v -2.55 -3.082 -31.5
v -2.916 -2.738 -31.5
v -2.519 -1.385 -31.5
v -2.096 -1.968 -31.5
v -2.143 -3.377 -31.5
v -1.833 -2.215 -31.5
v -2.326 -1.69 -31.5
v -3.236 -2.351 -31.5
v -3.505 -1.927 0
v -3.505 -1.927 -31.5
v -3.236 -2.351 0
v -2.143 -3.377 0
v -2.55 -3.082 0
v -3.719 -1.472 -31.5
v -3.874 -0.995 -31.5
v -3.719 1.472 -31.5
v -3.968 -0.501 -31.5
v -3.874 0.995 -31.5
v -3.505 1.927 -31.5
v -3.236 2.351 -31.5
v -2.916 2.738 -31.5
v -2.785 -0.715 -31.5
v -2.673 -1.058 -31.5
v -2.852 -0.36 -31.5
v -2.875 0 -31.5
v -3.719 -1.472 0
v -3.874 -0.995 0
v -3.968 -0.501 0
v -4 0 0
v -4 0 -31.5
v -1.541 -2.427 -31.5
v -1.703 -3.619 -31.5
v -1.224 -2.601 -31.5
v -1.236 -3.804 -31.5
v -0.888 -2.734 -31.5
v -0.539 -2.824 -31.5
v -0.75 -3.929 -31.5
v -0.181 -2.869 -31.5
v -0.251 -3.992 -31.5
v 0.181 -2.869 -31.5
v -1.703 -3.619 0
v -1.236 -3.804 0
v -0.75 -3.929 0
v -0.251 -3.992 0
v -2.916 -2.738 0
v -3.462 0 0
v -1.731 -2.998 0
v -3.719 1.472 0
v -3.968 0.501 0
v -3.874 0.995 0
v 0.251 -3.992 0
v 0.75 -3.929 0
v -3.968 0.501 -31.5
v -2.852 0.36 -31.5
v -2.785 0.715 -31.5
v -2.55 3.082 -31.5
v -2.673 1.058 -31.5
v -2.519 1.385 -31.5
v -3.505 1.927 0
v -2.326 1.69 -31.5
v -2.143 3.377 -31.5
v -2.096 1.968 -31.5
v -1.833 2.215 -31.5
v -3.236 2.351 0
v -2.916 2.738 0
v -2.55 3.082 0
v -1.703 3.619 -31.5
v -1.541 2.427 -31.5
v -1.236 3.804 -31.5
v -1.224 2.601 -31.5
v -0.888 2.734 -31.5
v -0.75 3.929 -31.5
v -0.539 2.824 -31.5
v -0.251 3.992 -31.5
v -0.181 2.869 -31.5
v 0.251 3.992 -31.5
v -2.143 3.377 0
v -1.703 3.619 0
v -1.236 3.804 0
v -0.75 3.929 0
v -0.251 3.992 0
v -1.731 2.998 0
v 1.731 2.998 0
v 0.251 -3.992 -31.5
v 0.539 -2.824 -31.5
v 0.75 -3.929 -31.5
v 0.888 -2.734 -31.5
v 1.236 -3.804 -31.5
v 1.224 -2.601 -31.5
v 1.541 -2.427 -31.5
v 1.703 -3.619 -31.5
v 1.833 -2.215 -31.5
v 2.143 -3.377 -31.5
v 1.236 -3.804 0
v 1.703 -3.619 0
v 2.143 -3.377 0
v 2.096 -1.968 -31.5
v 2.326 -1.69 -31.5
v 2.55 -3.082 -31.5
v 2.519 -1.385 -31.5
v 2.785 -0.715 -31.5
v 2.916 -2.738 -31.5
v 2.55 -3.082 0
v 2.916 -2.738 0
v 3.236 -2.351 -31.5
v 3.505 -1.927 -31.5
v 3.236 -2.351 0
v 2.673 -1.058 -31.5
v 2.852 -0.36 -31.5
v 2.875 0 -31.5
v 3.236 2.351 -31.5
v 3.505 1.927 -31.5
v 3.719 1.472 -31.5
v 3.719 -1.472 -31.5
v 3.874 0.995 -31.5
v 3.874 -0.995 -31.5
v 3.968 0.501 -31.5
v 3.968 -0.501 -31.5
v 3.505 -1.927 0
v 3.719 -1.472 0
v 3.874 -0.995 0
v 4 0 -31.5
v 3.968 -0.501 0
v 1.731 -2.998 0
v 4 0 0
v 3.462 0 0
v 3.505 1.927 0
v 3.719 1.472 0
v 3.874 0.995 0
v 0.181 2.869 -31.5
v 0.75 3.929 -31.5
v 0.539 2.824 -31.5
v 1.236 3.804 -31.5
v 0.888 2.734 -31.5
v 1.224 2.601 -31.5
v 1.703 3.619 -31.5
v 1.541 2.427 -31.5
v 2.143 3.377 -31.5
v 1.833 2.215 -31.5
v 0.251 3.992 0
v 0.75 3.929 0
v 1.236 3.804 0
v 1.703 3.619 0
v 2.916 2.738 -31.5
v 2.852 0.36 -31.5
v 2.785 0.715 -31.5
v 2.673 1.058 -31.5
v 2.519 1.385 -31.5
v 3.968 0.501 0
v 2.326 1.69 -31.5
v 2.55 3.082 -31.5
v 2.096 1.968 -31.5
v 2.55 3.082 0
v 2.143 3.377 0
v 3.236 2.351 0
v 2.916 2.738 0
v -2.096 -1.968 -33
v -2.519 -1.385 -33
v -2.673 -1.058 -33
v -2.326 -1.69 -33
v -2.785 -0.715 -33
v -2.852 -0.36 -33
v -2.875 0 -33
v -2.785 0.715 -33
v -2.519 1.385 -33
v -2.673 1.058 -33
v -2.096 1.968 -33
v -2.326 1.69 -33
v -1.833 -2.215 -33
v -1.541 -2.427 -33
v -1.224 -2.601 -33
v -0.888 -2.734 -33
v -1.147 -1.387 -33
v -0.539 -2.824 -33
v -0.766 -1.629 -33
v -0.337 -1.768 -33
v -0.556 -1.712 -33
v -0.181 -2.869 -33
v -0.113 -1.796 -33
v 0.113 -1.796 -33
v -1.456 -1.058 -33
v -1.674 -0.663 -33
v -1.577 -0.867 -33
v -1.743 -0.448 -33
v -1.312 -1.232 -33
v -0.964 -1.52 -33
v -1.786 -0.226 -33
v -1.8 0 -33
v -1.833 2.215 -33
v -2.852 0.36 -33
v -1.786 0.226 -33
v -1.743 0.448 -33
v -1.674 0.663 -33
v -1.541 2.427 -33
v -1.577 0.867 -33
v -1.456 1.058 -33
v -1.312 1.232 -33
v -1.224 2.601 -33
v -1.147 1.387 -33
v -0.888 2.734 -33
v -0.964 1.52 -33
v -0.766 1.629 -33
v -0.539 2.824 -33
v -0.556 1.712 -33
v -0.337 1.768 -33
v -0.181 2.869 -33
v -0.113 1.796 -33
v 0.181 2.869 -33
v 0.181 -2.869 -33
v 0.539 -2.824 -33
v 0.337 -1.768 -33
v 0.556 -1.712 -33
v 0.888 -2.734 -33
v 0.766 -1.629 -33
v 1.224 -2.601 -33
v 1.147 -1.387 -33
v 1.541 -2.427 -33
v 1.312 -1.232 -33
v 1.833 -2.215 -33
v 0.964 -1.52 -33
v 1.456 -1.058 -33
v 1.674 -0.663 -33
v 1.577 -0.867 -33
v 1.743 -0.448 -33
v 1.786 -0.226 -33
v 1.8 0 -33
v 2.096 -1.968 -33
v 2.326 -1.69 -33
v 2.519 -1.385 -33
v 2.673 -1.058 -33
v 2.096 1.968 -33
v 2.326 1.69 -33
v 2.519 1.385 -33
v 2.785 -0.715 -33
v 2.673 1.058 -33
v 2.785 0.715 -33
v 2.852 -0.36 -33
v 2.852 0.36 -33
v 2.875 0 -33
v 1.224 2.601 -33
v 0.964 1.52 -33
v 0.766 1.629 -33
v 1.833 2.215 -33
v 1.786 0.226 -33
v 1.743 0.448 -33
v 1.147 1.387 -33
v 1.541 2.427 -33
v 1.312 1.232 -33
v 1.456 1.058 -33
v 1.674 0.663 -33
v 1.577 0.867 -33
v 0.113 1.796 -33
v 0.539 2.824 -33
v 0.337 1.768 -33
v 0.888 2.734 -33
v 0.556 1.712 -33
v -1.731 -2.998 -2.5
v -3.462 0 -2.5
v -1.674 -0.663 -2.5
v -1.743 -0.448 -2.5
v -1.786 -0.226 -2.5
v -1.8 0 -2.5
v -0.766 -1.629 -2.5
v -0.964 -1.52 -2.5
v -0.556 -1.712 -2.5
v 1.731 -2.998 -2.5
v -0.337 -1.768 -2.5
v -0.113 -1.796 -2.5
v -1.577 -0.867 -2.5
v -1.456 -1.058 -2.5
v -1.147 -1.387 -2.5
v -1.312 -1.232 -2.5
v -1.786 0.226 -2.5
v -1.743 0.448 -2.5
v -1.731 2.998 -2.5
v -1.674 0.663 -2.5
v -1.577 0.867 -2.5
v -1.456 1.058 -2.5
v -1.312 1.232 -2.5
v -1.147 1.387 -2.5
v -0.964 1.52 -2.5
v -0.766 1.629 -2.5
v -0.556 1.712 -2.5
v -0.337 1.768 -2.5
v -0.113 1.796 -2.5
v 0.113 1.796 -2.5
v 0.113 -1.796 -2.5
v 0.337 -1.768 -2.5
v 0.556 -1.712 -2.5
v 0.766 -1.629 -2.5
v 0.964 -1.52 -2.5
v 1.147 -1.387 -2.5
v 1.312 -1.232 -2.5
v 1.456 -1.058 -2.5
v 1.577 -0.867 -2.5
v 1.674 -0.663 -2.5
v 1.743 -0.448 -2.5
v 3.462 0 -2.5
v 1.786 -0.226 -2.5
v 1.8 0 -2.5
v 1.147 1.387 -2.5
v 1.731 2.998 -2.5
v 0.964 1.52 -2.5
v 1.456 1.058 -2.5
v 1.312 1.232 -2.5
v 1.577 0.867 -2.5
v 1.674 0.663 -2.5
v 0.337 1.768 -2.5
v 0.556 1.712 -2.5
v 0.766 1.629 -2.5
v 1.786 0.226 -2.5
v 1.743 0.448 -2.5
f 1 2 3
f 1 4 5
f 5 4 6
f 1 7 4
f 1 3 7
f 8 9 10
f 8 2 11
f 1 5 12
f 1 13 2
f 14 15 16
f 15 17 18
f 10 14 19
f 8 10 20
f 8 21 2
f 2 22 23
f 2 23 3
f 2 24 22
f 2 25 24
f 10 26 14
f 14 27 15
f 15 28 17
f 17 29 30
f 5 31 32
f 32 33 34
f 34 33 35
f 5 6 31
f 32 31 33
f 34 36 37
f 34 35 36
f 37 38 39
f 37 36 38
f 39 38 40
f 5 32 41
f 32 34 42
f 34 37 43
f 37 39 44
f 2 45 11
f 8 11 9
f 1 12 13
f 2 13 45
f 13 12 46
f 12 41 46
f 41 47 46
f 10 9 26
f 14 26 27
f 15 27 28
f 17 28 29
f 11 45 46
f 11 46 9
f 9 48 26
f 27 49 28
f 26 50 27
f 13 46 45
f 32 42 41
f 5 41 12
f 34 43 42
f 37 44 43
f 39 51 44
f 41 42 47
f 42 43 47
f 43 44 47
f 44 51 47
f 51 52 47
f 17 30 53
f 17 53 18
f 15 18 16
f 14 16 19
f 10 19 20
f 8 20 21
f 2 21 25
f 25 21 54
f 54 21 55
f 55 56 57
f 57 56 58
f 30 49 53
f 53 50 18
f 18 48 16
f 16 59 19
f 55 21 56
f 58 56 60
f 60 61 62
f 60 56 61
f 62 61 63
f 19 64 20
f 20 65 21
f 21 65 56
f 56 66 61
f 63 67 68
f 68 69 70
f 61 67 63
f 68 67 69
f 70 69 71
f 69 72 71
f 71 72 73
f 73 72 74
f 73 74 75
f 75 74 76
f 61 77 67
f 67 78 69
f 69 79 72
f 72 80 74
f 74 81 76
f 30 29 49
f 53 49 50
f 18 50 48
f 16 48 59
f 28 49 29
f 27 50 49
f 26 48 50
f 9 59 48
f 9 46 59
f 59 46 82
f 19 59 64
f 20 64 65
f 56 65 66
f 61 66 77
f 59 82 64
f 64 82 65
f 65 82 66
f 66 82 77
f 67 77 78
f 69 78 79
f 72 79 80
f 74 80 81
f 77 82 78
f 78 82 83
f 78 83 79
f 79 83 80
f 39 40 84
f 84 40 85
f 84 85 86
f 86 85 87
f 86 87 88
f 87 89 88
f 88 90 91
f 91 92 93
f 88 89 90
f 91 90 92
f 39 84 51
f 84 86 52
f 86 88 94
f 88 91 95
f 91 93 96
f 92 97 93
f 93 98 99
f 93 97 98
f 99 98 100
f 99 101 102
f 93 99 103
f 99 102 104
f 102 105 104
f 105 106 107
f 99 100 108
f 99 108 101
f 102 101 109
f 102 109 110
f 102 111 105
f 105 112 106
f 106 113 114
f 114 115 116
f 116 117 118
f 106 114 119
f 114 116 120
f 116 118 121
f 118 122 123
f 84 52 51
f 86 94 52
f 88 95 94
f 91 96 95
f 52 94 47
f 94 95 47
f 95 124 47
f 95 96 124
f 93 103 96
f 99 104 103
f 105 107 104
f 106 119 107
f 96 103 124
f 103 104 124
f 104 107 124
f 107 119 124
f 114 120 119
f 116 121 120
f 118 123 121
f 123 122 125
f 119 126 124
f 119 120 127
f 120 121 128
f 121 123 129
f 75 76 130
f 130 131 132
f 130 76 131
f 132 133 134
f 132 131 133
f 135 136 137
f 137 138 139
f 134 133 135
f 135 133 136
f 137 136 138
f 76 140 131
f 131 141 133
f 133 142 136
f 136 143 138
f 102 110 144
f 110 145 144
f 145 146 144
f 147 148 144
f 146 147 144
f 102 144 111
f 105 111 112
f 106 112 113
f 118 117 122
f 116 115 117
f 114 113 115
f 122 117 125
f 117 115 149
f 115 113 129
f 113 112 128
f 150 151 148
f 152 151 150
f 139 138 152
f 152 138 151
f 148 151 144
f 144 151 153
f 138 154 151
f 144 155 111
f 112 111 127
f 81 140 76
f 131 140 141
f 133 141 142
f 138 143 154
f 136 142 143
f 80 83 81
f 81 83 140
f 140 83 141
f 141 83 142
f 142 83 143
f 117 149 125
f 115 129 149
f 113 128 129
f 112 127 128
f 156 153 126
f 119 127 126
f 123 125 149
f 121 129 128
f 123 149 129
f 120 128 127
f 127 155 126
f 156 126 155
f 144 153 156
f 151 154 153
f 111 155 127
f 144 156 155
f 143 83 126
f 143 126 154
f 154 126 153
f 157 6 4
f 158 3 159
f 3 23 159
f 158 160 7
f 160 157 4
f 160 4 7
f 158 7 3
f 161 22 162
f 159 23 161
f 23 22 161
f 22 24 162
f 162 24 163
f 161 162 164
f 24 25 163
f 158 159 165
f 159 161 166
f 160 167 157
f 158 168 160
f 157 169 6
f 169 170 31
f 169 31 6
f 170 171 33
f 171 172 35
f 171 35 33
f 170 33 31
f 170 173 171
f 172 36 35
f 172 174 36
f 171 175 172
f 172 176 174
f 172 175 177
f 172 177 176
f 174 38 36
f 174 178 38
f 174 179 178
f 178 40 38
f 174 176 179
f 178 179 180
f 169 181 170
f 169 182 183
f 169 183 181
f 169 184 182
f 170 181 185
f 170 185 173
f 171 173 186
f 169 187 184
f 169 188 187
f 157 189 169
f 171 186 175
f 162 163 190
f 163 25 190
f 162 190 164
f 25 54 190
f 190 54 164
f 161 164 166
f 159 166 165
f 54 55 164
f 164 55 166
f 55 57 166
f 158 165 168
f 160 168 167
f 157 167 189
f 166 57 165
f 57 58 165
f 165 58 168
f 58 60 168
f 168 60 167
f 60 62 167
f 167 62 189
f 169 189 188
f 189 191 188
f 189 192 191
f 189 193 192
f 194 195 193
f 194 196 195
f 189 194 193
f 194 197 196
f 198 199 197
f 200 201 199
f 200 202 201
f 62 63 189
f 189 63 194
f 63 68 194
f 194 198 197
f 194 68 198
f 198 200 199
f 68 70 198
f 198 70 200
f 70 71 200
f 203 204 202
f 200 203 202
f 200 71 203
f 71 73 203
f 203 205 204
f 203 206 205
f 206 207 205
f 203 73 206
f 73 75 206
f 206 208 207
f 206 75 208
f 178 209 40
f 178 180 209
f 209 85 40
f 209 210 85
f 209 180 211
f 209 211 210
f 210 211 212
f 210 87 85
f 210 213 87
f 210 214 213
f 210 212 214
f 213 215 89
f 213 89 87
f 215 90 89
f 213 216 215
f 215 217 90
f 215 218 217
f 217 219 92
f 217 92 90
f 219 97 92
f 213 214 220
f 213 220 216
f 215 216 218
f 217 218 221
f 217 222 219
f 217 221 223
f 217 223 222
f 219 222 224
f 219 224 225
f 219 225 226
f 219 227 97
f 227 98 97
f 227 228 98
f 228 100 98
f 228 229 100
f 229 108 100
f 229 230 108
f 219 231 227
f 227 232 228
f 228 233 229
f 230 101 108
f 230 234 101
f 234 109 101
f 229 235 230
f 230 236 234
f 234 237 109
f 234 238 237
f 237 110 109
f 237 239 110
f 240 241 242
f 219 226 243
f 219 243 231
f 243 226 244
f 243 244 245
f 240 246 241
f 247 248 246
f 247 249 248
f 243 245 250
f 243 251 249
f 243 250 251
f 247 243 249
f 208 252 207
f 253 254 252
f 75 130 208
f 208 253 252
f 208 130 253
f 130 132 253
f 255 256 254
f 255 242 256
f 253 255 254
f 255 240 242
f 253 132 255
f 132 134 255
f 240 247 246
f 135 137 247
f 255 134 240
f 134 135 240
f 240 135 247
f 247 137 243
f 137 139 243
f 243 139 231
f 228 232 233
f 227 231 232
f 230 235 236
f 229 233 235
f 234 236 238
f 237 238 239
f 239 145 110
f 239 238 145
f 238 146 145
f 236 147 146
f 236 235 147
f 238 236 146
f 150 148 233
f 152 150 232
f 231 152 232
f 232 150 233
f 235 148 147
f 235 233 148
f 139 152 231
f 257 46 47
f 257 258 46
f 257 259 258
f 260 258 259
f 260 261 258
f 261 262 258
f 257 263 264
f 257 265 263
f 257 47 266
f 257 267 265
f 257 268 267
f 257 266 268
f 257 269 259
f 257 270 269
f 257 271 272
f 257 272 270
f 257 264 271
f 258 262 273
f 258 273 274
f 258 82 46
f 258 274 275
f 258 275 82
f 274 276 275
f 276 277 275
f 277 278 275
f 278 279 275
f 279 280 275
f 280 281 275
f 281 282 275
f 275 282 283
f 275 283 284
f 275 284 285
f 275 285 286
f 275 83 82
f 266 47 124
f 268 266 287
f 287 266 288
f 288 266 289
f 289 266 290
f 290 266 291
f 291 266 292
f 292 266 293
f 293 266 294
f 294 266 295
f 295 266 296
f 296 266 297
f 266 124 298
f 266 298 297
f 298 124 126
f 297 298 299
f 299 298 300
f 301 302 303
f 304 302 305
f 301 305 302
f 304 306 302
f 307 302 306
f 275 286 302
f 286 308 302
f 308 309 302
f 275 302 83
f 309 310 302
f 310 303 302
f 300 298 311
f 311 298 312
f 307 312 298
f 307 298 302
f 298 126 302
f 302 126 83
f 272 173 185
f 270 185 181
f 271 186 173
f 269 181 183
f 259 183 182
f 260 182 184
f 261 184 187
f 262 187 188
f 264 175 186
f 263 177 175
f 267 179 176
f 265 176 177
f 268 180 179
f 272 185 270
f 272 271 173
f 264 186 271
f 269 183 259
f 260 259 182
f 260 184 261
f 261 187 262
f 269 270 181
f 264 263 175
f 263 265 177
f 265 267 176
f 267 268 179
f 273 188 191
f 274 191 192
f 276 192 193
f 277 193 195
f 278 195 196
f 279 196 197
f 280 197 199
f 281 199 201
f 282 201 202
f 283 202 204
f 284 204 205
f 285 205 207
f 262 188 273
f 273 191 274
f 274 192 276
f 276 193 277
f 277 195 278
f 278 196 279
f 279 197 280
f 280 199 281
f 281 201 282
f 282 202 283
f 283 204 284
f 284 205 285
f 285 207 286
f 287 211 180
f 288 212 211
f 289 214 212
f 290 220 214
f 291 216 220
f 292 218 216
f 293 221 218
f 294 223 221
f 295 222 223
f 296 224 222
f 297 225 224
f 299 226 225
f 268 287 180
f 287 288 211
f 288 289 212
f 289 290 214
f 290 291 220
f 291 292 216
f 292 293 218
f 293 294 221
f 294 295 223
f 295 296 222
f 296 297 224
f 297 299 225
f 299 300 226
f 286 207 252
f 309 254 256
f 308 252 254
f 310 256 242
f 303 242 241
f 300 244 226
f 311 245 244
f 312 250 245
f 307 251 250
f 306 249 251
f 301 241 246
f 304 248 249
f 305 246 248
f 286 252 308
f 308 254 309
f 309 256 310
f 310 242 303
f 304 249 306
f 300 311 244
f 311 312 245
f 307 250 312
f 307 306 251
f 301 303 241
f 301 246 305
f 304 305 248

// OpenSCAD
$fn = 50;

difference() {
	union() {
		translate(v = [0, 0, -31.5]) {
			cylinder(h = 31.5, r = 4.0);
		}
		#translate(v = [0, 0, -33.0]) {
			cylinder(h = 33, r = 2.875);
		}
	}
	union() {
		translate(v = [0, 0, 0]) {
			rotate(a = [0, 0, 0]) {
				difference() {
					union() {
						translate(v = [0, 0, -2.5]) {
							linear_extrude(height = 2.5) {
								polygon(points = [[3.4619999999999997, 0.0], [1.7310000000000003, 2.9981799479017264], [-1.7309999999999992, 2.9981799479017264], [-3.4619999999999997, 4.2397272186481365e-16], [-1.7310000000000014, -2.998179947901726], [1.7309999999999977, -2.9981799479017277]]);
							}
						}
					}
					union();
				}
			}
		}
		#translate(v = [0, 0, -100.0]) {
			cylinder(h = 200, r = 1.8);
		}
	}
}
